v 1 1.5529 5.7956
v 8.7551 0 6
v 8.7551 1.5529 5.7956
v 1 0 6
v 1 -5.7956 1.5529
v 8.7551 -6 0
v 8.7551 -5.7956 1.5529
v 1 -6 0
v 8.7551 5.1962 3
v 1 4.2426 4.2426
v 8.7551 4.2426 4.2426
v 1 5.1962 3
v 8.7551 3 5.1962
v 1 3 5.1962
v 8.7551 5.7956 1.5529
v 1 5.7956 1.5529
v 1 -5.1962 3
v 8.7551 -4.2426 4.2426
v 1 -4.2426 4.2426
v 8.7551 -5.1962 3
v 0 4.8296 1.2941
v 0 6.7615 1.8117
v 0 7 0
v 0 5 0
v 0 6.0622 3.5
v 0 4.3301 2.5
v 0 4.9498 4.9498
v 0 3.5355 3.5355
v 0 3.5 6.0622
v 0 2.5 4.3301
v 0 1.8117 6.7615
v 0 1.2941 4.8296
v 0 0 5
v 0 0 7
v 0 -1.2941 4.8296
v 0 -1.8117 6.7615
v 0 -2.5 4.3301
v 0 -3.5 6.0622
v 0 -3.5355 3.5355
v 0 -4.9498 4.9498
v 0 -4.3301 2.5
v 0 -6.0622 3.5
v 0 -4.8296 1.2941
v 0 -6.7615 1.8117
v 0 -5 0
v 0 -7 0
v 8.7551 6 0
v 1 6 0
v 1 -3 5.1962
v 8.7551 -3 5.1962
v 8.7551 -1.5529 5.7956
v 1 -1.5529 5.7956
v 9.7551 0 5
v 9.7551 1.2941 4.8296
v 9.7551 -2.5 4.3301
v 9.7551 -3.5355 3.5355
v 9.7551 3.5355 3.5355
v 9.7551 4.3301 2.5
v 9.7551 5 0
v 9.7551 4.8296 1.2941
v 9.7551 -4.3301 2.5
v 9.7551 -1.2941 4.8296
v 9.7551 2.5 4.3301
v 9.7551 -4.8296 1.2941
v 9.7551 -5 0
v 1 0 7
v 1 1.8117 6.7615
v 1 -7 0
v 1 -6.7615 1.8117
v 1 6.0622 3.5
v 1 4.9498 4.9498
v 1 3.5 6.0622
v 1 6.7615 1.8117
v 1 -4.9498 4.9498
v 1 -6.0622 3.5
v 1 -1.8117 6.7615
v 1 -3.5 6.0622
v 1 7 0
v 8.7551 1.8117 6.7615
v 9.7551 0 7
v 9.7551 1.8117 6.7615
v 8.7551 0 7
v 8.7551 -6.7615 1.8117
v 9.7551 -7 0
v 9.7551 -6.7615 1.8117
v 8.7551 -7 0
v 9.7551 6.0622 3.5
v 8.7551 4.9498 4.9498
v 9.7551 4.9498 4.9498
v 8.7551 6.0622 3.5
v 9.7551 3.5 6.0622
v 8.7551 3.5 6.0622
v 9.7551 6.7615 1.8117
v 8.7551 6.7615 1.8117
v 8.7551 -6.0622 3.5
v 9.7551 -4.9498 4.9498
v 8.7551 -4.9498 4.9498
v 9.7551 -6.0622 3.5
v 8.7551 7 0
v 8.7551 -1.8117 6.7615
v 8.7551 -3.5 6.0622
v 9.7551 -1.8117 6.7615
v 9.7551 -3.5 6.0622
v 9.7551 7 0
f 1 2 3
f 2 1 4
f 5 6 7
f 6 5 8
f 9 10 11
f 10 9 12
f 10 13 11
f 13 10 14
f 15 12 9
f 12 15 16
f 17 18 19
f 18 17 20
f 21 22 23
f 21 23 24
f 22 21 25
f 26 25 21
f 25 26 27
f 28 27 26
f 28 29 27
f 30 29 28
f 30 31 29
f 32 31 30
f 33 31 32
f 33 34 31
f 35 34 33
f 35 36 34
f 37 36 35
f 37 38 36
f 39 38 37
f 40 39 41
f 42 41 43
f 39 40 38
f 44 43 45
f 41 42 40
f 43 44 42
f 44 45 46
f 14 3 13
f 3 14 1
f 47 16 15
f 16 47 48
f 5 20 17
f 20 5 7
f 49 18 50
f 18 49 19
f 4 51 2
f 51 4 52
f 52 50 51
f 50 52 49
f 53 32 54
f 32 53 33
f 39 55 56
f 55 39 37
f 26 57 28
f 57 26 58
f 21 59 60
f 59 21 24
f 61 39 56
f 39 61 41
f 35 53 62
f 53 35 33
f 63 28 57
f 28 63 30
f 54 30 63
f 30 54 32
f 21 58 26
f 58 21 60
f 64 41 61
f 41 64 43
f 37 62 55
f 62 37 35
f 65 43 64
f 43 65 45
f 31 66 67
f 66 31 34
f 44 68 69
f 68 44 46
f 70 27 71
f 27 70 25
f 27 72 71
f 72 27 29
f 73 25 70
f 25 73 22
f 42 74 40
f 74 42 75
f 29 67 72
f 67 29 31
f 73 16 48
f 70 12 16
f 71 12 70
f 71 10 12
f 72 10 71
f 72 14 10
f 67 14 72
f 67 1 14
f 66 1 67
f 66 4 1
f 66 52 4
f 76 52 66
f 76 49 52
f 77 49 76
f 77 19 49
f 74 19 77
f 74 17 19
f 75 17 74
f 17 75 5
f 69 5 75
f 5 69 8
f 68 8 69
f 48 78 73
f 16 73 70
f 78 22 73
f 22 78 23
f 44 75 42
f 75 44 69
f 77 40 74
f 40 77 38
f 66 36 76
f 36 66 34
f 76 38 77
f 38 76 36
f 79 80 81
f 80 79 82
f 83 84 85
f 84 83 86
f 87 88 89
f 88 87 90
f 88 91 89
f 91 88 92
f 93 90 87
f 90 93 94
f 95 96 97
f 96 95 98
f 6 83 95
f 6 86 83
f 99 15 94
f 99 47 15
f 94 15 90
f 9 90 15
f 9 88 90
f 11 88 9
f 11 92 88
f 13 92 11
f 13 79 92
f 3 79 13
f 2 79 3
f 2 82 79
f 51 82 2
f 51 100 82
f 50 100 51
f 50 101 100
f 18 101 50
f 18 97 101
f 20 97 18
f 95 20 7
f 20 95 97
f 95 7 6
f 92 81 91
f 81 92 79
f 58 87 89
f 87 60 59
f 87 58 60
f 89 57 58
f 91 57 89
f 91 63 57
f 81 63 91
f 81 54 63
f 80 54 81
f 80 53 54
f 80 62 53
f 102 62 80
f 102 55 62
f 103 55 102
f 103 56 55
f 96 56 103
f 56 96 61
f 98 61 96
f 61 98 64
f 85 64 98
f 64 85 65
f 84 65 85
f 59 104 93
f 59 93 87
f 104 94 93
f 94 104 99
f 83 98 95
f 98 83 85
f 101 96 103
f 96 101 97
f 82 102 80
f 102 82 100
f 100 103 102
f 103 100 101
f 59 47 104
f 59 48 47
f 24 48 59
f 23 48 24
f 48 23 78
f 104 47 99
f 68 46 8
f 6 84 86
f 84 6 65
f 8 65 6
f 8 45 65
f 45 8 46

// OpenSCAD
// file: ../build_environments.scad
// build_environments.scad: modules to build level sections
//

module pool(diameter=10.0, wall_height=2.0, step_width=3.0, connections=[])
{
    difference() {
        union() {
        difference() {
            cylinder(h=0.5,r1=diameter+step_width,r2=diameter+step_width,$fn=48);
            translate([0,0,-0.1])
                cylinder(h=0.7,r1=diameter,r2=diameter,$fn=48);
        }
        difference() {
            cylinder(h=wall_height,r1=diameter+step_width+1.0,r2=diameter+step_width+1.0,$fn=48);
            translate([0,0,-0.1])
                cylinder(h=wall_height+0.2,r1=diameter+step_width,r2=diameter+step_width,$fn=48);
        }
        }
    
        for (c = connections)
        {
            rotate([0,90,0]) {
                angle = atan2(c[1],c[0]);
                rotate([-angle,0,0]) {
                    cylinder(h=diameter+5.0,r1=c[2],r2=c[2],$fn=48);
                }
            }
        }
    }
}

module straight(length=10.0, width=2.0, dy1=0.0, dy2=0.0, dz=0.0)
{
    dims = [0, 0, 0, 0, 0, (dz/length)];
    matrix = [
        [ 1, dims[0], dims[1], 0 ],
        [ dims[2], 1, dims[4], 0 ],
        [ dims[5], dims[3], 1, 0 ],
        [ 0, 0, 0, 1 ]
    ];
    multmatrix(matrix)
    difference() {
        translate([dy1,0,0])
        union() {
            rotate([0,90,0]) {
                difference() {
                    cylinder(h=(length-dy1-dy2),r1=width+1.0,r2=width+1.0,$fn=24);
                    translate([0,0,-0.1])
                        cylinder(h=(length-dy1-dy2+0.2),r1=width,r2=width,$fn=24);
                }
                difference() {
                    cylinder(h=1.0,r1=width+2.0,r2=width+2.0,$fn=24);
                    translate([0,0,-0.1])
                        cylinder(h=1.2,r1=width,r2=width,$fn=24);
                }
                translate([0,0,(length-dy1-dy2)-1.0]) {
                    difference() {
                        cylinder(h=1.0,r1=width+2.0,r2=width+2.0,$fn=24);
                        translate([0,0,-0.1])
                            cylinder(h=1.2,r1=width,r2=width,$fn=24);
                    }
                }
            }
        }
        translate([0,0,-(2*width+4.0)/2])
            cube([3*length,3*length,2*width+4.0],center=true);
    }
}

module curve(p0=[0,0], center=[0,0], dir=1, angle=0.0, width=2.0)
{
    radius = sqrt((p0[0]-center[0])*(p0[0]-center[0]) + (p0[1]-center[1])*(p0[1]-center[1]));
    if (dir == 0) {
        difference() {
            rotate([0,0,-90])
            difference() {
                rotate_extrude(angle = angle, convexity = 10, $fn=32)
                    translate([radius, 0, 0])
                        circle(r = width+1.0,$fn=24);
                rotate([0,0,-1.0])
                    rotate_extrude(angle = angle+2.0, convexity = 10, $fn=32)
                        translate([radius, 0, 0])
                            circle(r = width,$fn=24);
            }
            translate([0,0,-(2*width+4.0)/2])
                cube([5*radius,5*radius,2*width+4.0],center=true);
        }
    }
    else {
        difference() {
            rotate([0,0,90])
            difference() {
                rotate_extrude(angle = -angle, convexity = 10, $fn=32)
                    translate([radius, 0, 0])
                        circle(r = width+1.0,$fn=24);
                rotate([0,0,1.0])
                    rotate_extrude(angle = -angle-2.0, convexity = 10, $fn=32)
                        translate([radius, 0, 0])
                            circle(r = width,$fn=24);
            }
            translate([0,0,-(2*width+4.0)/2])
                cube([5*radius,5*radius,2*width+4.0],center=true);
        }
    }

}

// test pool
//pool(diameter=12.0000, wall_height=3.0000, step_width=3.0000, connections=[[0.0000,-26.0000,2.0000], [23.6074,0.0000,2.0000]]);

// test straight, slope
//straight(length=26.0000, width=2.0000, dy1=11.8322, dy2=6.7082, dz=0.0000);
//straight(length=29.1549, width=12.0000, dy1=0.0000, dy2=0.0000, dz=-15.0000);

// test curve
//curve(p0=[23.6074, 0.0000], center=[23.6074, 5.0000], dir=0, angle=60.1011, width=2.0000);
//curve(p0=[33.6426, 12.4219], center=[37.9771, 9.9295], dir=1, angle=120.4627, width=2.0000);
// main file
use <../build_environments.scad>;
straight(length=9.7551, width=5.0000, dy1=0.0000, dy2=0.0000, dz=0.0000);
